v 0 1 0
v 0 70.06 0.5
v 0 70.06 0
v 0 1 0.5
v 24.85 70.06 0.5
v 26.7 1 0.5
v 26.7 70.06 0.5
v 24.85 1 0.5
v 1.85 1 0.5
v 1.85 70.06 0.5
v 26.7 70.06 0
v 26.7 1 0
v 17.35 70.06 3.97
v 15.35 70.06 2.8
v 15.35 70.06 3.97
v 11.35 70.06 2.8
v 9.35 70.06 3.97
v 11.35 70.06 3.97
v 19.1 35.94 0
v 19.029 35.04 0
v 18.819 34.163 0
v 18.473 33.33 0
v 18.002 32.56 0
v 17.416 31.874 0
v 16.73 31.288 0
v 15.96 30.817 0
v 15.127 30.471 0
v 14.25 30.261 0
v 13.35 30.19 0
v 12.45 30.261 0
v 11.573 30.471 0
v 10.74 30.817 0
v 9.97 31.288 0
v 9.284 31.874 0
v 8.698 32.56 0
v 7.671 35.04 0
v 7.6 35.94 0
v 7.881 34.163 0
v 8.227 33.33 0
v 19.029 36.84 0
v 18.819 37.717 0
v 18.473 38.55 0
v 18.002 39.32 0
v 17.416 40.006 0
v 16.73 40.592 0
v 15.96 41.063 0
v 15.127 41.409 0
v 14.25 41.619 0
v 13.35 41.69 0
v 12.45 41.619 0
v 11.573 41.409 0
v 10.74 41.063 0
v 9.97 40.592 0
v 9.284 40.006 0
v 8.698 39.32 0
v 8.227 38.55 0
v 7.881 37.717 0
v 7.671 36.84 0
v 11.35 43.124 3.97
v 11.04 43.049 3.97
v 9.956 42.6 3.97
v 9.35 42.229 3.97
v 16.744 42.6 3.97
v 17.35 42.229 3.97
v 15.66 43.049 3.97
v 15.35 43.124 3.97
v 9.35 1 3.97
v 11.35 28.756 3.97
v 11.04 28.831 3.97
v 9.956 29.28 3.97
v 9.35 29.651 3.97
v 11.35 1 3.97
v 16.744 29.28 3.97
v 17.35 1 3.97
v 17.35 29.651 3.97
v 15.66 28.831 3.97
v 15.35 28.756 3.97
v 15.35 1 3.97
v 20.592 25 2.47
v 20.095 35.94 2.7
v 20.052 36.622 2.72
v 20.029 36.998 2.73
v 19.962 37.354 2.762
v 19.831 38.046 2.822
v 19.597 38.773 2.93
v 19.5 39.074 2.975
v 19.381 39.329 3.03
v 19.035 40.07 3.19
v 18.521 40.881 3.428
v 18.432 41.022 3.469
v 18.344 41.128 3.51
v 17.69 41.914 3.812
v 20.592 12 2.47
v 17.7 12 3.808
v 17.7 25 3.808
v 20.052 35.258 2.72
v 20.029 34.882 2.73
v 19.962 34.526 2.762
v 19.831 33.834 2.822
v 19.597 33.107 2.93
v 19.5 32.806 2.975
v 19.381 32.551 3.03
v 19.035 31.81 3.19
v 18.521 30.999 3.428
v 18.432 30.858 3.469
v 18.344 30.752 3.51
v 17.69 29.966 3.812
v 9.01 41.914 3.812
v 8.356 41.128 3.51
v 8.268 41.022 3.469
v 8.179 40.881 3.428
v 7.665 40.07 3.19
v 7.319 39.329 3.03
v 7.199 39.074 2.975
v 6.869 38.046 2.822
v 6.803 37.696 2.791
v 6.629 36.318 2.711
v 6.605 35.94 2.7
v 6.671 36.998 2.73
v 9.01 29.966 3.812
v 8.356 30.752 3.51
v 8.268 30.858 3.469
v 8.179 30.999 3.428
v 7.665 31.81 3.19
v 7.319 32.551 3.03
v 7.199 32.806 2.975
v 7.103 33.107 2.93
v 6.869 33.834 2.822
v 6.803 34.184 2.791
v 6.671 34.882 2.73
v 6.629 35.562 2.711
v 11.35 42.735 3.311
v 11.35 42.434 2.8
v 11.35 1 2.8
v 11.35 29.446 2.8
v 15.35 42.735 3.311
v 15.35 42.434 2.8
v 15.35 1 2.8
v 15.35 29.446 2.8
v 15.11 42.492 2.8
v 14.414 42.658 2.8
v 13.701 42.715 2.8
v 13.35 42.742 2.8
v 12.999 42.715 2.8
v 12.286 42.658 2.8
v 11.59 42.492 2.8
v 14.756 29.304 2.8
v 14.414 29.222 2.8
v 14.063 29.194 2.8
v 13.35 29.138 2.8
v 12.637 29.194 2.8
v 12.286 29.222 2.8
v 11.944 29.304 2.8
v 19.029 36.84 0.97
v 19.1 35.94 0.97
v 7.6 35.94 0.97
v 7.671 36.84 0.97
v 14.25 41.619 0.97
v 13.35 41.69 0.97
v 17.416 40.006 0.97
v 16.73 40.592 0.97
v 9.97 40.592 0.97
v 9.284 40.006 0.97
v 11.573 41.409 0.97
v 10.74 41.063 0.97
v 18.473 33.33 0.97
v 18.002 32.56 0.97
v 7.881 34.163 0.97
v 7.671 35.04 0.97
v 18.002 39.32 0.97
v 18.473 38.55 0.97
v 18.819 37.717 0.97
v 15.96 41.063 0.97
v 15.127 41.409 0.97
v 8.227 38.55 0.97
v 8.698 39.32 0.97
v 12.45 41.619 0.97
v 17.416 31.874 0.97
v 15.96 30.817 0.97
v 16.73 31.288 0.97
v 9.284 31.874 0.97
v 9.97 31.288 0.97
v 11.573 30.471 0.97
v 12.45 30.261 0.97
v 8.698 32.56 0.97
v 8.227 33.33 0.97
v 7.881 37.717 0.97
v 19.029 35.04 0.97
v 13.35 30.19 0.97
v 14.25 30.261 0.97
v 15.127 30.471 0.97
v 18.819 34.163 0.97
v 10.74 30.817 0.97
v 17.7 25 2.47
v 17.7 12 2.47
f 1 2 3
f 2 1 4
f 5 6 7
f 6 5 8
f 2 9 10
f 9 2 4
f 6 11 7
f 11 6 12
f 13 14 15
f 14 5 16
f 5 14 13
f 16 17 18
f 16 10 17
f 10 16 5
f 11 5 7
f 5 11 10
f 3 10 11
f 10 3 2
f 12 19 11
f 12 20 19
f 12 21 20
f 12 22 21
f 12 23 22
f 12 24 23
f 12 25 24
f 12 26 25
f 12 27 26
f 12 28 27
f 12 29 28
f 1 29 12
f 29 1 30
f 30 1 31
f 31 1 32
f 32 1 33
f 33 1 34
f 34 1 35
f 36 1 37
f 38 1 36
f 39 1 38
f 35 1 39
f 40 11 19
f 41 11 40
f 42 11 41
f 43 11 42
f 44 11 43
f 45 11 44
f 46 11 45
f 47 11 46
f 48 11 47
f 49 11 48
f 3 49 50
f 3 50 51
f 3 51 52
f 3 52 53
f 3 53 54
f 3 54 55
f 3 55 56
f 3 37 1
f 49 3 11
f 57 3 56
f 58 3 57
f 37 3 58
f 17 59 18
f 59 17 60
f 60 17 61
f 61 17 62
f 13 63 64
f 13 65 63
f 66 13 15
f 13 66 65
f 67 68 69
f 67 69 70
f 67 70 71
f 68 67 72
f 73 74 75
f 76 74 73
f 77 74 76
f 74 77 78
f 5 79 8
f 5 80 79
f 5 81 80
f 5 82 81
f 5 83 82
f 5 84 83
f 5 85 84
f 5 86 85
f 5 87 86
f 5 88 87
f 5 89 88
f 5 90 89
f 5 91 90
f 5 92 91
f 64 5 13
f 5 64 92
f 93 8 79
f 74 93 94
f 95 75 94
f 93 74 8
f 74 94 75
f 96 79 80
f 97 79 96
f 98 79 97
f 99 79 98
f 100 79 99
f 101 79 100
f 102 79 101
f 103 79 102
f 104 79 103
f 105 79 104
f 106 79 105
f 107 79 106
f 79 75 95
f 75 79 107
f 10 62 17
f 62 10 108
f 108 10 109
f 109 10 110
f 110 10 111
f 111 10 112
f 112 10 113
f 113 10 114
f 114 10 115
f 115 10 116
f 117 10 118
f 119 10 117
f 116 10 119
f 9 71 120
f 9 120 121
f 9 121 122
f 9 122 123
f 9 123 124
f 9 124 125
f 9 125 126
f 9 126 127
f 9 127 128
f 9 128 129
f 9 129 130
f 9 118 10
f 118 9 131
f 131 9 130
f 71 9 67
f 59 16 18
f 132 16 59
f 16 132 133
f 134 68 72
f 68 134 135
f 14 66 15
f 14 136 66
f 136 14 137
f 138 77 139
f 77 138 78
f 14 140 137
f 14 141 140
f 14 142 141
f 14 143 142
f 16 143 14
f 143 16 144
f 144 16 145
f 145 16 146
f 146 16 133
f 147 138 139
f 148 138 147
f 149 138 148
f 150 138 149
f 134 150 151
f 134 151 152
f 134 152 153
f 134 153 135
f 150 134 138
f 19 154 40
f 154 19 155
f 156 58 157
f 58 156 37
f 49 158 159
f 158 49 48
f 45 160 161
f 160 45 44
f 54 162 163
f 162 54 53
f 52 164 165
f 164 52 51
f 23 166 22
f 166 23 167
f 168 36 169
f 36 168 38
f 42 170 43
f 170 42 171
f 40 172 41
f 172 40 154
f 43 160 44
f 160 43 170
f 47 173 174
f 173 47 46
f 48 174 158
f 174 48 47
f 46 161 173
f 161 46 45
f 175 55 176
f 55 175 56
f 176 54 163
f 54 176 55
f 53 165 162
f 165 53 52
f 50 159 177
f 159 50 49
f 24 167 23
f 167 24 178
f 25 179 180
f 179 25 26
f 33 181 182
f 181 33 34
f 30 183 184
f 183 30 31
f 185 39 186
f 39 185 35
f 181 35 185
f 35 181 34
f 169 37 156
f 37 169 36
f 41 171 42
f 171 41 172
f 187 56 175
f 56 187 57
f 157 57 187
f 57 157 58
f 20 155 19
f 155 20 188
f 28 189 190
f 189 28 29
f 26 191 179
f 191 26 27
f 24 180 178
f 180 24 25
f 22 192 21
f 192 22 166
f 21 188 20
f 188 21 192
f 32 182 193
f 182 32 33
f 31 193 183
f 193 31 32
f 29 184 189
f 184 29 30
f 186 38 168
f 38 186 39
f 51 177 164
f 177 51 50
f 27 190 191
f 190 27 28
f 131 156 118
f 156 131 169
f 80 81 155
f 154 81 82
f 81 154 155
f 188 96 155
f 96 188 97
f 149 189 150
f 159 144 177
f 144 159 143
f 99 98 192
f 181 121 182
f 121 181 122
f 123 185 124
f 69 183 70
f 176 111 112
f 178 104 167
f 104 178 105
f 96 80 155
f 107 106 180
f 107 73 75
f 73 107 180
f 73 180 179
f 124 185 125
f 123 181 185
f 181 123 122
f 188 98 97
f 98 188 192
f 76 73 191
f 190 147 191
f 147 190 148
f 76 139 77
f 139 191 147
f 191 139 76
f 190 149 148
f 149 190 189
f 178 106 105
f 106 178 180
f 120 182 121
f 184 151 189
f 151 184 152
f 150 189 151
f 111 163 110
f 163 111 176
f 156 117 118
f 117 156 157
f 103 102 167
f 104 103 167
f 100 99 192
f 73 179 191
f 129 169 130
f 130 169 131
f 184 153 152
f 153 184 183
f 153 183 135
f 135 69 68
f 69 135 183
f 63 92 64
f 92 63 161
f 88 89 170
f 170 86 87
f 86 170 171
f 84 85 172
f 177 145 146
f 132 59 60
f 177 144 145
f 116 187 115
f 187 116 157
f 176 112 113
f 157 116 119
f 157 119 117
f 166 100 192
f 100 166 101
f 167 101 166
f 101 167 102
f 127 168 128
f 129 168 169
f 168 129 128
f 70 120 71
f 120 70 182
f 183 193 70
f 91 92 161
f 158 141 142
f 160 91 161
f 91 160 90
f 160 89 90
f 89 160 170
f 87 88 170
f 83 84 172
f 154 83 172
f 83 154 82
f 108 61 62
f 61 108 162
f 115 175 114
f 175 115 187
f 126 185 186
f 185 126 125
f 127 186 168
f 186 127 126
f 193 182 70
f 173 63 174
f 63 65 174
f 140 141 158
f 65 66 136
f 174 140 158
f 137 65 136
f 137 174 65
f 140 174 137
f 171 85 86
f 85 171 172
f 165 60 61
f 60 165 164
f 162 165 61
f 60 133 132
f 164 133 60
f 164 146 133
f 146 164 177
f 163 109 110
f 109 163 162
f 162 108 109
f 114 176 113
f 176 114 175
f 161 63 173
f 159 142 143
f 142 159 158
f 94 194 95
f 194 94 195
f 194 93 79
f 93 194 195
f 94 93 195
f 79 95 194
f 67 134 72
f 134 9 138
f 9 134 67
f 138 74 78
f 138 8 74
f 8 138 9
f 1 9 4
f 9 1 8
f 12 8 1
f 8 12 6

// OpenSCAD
$fn=40;

/* Diffuser Lense For A Particular Project (OpenSCAD) */

/* Camera */
cam_dia = 10.5;


/* LED PCB */
ledpcbw = 26.7;
ledpcbh = 71.88;
ledpcb_thickness = 3.47;
ledpcb_header_pos = 25;
ledpcb_header_w = 9;
holedia = cam_dia + 1;

/* Diffuser */
diffuserw=ledpcbw;
diffuserh=ledpcbh-1.82;
thickness=ledpcb_thickness-1.59;

/* Top Diffuser */
diffuser_top_h=0.5;

/* Bottom Diffuser */
diffuser_bottom_h=ledpcb_thickness;

/* Enclosure hole */
enclosurew = ledpcb_header_pos-2;

/* SMD LED */
ledh = 2.76-1.59;
ledw = 4;

difference()
{
  union()
  {
    // Cutout area to allow for raftless printing
    cube([ledpcb_header_w,ledpcb_header_pos, 0.1]);
    
    // Main object
    difference()
    {
      union()
      { // Main Body
        
        // Top Diffuser
        cube([diffuserw,diffuserh,diffuser_top_h]);
        
        // Bottom Diffuser
        bottom_flat_width = ledw;
        hull()
        {
          translate([(diffuserw - enclosurew)/2,0,0])
            cube([enclosurew,diffuserh,diffuser_top_h]);
          translate([ledpcbw/2 - bottom_flat_width,0,diffuser_top_h])
            cube([bottom_flat_width*2, diffuserh, diffuser_bottom_h]);
        }
      }

      // LED Holes
      translate([ledpcbw/2 - ledw/2, 0, diffuser_top_h+diffuser_bottom_h-ledh])
        cube([ledw,ledpcbh,ledh]);

      // Camera Hole
      translate([ledpcbw/2,ledpcbh/2,-thickness/2])
        cylinder(thickness*3,d=holedia);

      // Camera Hole Top Lip
      //translate([ledpcbw/2,ledpcbh/2,0])
      //  cylinder(2, d1=holedia*1.5, d2=holedia);

      // Camera Hole Bottom Lip
      translate([ledpcbw/2,ledpcbh/2, diffuser_top_h+diffuser_bottom_h-3])
        cylinder(3, d1=holedia, d2=holedia*1.3);

      // Header Hole
      header_height=1.5;
      translate([ledpcbw-ledpcb_header_w, ledpcb_header_pos-13, diffuser_top_h+diffuser_bottom_h-header_height])
        cube([ledpcb_header_w,13,header_height]);
      
    }
  }
  
  /* Trimming */
  translate([0,0,-thickness])
    cube([diffuserw,1,thickness*4]);
}
